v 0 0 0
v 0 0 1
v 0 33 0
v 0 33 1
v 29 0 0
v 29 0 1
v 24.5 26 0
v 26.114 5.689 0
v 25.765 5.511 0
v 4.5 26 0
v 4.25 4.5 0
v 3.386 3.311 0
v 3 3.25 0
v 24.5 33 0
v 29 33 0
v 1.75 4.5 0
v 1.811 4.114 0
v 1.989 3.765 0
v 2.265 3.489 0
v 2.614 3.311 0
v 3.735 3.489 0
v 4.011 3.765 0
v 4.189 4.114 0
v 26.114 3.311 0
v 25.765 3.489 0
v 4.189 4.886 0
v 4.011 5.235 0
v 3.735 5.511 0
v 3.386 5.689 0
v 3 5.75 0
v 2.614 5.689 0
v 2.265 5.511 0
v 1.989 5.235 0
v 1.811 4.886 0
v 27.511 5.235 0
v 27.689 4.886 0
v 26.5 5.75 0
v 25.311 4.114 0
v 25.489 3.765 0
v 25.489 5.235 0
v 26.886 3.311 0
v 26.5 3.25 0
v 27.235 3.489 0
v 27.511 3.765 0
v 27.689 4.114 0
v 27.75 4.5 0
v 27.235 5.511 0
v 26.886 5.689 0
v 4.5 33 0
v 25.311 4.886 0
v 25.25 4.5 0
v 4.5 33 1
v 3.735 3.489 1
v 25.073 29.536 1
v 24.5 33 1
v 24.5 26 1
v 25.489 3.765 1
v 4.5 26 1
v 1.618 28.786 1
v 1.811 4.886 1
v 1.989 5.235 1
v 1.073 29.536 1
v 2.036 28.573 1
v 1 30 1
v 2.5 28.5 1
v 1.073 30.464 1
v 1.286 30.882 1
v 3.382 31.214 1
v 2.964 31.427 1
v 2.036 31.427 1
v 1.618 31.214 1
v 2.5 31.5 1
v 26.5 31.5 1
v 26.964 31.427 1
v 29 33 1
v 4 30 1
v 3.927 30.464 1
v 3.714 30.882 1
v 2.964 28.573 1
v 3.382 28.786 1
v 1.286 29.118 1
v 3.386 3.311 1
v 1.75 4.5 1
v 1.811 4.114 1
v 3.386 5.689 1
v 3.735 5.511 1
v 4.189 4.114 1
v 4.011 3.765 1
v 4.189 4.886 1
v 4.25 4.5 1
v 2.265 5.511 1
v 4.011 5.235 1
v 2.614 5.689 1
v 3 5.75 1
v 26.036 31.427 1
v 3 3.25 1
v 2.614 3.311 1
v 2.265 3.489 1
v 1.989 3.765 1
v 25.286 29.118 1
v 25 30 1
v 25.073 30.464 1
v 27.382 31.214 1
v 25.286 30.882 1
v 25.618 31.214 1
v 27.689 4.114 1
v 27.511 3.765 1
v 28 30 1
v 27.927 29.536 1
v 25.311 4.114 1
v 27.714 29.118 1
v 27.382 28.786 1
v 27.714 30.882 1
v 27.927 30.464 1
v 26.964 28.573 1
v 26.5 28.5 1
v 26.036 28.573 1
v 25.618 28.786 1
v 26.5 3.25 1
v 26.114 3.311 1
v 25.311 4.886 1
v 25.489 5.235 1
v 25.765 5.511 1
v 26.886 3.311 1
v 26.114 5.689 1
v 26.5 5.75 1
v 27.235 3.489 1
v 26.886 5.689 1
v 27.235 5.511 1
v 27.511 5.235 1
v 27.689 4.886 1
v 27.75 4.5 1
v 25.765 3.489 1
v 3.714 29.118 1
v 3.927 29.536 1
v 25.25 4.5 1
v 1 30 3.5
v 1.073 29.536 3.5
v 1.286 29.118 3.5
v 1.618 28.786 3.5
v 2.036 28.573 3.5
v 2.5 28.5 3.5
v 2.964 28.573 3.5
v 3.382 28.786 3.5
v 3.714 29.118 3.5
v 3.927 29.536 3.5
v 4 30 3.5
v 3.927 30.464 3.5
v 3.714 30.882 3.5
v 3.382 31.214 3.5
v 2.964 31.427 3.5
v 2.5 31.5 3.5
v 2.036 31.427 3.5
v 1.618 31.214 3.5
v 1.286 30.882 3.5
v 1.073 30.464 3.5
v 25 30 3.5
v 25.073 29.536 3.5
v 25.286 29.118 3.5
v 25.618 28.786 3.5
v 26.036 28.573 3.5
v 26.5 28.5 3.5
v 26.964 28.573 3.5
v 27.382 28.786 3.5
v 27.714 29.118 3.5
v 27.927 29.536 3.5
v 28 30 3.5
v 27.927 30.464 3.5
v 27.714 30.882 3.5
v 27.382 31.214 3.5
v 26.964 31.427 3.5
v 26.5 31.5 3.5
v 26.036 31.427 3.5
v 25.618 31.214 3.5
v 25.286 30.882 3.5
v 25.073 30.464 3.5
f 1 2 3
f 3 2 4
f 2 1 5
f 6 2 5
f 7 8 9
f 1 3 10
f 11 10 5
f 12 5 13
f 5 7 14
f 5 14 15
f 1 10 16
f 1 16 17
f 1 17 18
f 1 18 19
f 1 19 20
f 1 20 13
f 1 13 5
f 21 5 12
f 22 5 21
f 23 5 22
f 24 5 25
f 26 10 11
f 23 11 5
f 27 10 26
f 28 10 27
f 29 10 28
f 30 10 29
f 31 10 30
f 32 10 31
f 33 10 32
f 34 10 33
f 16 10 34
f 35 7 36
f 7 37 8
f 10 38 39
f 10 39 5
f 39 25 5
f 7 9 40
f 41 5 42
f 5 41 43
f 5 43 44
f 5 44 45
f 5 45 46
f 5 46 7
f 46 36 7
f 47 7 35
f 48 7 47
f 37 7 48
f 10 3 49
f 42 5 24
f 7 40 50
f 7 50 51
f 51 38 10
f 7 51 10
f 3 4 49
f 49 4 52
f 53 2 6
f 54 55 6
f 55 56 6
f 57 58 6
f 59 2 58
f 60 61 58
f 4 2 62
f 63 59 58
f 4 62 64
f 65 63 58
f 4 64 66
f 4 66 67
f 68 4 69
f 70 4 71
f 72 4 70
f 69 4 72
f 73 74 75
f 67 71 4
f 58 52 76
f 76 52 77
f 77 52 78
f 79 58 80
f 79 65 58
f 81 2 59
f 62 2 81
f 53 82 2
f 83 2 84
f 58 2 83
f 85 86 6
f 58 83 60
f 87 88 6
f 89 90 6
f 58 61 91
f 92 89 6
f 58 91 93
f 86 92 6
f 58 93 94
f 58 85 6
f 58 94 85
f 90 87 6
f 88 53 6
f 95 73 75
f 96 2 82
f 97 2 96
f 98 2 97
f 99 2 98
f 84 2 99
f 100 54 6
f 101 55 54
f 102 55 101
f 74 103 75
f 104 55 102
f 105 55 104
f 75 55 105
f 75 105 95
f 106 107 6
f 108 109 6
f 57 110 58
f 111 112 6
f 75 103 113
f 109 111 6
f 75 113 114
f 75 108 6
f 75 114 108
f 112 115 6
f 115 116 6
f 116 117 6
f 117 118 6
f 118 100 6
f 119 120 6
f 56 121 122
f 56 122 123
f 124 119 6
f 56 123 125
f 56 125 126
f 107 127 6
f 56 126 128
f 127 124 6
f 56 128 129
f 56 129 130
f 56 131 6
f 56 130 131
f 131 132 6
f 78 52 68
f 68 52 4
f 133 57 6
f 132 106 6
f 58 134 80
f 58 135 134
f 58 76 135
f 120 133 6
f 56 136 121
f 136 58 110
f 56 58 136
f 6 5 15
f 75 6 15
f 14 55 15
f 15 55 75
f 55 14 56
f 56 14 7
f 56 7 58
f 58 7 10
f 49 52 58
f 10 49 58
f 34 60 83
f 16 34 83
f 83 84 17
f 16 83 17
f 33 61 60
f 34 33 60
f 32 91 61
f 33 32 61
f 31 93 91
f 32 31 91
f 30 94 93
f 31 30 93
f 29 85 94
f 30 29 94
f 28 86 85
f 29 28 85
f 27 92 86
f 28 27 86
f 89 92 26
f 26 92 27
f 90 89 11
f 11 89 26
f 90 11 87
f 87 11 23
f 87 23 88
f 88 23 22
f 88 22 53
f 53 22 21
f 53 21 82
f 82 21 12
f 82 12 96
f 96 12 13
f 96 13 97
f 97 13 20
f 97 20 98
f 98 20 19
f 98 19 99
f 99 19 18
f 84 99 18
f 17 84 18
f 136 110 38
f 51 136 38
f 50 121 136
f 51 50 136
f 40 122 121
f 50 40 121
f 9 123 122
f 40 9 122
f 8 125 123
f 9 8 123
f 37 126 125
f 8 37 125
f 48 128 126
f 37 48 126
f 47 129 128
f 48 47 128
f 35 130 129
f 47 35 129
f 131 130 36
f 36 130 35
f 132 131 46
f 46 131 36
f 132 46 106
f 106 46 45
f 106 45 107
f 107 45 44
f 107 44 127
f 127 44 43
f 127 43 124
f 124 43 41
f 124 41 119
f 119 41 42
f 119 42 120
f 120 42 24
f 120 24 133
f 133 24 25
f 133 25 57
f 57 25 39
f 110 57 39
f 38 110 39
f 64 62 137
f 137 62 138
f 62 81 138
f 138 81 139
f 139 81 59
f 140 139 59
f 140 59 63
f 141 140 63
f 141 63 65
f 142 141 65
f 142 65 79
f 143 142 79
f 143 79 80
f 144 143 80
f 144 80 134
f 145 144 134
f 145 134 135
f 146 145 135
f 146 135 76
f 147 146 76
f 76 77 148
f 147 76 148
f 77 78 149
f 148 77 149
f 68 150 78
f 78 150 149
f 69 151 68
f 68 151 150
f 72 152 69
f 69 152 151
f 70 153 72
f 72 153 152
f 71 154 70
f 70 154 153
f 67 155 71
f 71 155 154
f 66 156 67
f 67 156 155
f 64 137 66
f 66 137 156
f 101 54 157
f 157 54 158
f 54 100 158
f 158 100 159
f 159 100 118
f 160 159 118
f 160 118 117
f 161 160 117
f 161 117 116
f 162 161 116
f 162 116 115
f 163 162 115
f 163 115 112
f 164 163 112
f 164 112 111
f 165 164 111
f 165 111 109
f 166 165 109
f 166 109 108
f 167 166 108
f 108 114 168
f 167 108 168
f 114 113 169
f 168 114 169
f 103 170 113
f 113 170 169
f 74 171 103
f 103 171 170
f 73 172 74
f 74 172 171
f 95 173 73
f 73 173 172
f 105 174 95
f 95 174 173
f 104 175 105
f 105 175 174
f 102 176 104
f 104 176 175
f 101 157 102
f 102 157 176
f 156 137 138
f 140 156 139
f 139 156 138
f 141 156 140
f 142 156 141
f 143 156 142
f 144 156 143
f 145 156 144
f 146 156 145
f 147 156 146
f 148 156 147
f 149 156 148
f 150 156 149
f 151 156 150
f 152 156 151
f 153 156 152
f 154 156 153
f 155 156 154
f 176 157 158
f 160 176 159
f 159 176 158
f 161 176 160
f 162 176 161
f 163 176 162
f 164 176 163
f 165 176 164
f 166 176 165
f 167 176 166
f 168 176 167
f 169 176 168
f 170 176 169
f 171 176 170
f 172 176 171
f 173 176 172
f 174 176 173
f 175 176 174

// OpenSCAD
difference() {

	union(){
		cube(size = [29,33,1]);

		translate([2.5,30,0.5])
		{ cylinder(h=3, r=1.5, $fn=20); }

		translate([26.5,30,0.5])
		{ cylinder(h=3, r=1.5, $fn=20); }
	}

	translate([4.5,26,-0.5])
	{ cube(size = [20,7.5,2]); }

	translate([3,4.5,-0.5])
	{ cylinder(h=2, r=1.25, $fn=20); }

	translate([26.5,4.5,-0.5])
	{ cylinder(h=2, r=1.25, $fn=20); }
}
